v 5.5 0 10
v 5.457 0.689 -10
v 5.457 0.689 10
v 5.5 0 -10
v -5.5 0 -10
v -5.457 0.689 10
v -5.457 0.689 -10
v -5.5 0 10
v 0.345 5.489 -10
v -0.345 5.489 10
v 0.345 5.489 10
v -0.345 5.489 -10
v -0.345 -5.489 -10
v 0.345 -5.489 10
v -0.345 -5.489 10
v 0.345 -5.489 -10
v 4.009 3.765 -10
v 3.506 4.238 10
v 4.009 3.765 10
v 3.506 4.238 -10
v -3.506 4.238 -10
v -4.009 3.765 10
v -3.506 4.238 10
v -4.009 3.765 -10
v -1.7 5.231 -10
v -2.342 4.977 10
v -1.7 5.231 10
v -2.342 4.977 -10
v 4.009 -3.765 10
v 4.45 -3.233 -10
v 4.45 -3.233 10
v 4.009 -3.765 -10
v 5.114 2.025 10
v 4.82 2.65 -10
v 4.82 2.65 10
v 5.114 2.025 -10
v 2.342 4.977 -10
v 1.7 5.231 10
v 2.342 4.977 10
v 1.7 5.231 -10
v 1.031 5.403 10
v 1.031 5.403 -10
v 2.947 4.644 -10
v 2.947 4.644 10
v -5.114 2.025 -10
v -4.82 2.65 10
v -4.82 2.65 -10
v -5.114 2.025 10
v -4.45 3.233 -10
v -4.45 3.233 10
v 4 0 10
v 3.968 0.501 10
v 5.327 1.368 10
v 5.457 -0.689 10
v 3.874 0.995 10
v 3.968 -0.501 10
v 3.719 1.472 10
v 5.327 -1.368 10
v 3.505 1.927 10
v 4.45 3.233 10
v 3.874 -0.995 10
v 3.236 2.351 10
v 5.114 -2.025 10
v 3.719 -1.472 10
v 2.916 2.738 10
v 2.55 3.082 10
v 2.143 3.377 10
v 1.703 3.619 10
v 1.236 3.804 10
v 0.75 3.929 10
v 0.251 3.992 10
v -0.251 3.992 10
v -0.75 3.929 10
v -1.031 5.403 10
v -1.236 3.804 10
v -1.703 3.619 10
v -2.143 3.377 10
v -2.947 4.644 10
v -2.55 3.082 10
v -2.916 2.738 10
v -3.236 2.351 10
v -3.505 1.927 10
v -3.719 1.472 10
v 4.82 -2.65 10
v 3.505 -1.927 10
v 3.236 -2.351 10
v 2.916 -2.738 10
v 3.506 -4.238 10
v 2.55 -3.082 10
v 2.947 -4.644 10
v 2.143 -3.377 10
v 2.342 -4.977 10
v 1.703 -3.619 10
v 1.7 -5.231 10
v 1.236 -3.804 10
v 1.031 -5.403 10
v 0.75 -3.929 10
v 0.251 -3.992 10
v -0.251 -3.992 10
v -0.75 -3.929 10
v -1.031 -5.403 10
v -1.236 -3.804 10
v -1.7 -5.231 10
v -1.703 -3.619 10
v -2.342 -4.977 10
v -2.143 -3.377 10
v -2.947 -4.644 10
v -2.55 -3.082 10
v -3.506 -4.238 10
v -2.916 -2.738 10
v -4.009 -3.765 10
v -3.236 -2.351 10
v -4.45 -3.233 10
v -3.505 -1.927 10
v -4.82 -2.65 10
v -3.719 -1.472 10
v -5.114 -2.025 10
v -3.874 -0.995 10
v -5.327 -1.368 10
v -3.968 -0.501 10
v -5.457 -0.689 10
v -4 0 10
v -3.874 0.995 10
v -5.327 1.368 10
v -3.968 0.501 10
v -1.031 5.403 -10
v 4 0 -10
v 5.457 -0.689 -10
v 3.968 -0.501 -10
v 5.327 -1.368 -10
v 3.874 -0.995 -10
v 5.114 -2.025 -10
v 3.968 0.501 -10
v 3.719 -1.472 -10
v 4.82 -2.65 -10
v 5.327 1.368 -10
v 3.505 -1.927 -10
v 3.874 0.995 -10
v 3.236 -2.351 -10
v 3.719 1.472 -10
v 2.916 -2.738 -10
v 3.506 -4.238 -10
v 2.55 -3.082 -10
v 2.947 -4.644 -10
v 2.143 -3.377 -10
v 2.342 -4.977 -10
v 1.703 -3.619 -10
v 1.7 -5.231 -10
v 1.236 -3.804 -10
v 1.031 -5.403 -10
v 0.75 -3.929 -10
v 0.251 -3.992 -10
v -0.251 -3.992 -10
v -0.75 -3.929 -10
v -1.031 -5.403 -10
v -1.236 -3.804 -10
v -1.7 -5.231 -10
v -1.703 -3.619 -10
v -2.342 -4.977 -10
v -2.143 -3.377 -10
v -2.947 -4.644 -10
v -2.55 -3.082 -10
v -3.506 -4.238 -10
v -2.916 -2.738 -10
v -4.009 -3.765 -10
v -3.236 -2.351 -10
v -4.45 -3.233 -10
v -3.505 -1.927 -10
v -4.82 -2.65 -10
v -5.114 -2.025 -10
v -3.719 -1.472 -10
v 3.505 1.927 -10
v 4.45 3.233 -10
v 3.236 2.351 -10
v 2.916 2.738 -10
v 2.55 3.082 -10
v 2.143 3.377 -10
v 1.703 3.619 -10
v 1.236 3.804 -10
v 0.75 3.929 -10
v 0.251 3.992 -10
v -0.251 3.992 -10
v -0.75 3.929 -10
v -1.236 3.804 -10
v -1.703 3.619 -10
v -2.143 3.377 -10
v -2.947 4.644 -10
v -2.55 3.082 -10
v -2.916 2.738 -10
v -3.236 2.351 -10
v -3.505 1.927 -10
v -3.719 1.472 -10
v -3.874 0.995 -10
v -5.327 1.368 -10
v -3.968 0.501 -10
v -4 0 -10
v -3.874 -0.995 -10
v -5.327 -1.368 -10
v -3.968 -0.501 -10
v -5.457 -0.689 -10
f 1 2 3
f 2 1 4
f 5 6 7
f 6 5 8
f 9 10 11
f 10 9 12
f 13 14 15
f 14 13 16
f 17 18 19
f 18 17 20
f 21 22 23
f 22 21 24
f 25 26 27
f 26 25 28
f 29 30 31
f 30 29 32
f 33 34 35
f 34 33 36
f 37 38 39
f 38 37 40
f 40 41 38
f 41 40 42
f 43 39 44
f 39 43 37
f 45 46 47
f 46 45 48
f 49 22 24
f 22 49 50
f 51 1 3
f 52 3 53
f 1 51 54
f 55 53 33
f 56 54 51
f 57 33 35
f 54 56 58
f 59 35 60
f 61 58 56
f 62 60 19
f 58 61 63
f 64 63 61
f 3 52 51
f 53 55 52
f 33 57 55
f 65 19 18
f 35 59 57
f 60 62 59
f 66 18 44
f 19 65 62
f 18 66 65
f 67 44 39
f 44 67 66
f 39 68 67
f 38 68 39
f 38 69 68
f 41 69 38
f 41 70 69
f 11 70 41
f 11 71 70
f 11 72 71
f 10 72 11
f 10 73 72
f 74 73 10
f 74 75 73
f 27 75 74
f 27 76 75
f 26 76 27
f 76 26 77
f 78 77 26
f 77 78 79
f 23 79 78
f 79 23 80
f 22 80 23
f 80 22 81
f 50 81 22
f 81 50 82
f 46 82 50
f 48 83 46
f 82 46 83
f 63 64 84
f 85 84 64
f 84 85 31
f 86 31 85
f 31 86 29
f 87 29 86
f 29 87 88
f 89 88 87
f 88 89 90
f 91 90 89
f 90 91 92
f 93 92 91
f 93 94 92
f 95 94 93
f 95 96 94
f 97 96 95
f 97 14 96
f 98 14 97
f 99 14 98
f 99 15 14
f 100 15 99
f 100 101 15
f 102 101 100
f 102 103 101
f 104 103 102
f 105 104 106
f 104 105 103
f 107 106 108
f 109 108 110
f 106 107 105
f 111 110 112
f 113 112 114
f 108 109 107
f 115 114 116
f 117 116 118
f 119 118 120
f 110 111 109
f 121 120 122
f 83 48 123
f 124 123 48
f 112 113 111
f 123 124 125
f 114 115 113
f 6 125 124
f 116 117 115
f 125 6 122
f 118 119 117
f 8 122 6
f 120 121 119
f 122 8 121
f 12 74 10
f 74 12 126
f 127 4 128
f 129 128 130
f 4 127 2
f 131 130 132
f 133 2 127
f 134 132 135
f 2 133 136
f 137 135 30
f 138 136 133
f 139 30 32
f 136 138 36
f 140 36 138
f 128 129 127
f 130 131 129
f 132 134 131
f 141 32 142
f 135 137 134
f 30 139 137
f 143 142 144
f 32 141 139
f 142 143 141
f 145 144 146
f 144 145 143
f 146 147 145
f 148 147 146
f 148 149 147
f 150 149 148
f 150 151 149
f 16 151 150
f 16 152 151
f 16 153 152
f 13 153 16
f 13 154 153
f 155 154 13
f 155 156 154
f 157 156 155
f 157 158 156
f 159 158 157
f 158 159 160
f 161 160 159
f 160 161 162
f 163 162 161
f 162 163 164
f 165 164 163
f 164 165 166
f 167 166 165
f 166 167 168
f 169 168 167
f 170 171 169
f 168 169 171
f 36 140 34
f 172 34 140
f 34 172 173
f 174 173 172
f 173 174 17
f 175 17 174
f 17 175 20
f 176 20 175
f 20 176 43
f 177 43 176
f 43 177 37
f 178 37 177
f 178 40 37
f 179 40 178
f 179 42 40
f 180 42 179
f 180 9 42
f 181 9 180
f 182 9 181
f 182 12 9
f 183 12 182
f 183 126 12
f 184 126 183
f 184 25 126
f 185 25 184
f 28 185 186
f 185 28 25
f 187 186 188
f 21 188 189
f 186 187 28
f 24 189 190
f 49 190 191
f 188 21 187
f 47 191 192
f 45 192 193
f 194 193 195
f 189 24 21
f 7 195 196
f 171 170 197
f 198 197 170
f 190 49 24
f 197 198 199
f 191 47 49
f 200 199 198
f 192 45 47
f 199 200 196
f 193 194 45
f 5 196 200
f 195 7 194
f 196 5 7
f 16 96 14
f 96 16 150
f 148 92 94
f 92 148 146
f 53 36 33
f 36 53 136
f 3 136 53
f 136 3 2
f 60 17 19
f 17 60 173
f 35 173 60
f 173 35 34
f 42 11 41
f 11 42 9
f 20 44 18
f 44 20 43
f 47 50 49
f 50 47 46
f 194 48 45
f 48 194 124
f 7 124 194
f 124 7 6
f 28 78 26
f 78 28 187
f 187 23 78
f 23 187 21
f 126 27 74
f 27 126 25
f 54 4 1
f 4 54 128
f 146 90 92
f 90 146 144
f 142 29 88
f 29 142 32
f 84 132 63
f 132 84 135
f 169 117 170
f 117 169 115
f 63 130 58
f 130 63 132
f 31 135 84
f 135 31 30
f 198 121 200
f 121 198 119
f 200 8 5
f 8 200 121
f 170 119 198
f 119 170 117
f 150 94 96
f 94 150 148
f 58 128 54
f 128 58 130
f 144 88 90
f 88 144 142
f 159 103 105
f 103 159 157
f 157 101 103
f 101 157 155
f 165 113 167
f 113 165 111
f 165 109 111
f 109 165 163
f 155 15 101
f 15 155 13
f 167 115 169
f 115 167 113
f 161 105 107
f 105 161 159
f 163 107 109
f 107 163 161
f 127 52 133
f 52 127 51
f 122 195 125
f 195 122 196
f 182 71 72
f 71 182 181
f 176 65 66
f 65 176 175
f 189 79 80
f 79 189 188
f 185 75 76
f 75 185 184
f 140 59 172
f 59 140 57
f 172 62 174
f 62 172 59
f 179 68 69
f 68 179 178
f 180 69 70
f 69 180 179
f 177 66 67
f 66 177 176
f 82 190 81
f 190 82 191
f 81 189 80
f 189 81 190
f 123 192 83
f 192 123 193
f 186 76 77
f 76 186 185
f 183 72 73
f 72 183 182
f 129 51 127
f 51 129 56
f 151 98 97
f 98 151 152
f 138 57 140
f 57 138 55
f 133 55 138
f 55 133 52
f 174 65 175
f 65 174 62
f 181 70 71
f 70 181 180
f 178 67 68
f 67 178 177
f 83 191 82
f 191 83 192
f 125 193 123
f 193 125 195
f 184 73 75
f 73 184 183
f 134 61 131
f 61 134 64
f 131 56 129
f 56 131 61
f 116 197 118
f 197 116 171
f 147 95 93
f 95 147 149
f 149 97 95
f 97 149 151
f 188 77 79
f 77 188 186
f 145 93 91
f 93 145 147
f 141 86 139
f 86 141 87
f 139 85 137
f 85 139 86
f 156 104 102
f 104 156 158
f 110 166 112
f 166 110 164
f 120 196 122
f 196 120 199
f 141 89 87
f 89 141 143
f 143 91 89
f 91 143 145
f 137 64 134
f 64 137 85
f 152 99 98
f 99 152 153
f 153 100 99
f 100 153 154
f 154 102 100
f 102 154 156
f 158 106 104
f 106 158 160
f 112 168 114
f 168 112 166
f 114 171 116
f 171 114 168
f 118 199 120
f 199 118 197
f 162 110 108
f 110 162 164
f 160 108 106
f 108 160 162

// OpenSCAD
$fn = 50;


difference() {
	union() {
		translate(v = [0, 0, -10.0000000000]) {
			cylinder(h = 20, r = 5.5000000000);
		}
	}
	union() {
		translate(v = [0, 0, -100.0000000000]) {
			cylinder(h = 200, r = 4);
		}
	}
}
